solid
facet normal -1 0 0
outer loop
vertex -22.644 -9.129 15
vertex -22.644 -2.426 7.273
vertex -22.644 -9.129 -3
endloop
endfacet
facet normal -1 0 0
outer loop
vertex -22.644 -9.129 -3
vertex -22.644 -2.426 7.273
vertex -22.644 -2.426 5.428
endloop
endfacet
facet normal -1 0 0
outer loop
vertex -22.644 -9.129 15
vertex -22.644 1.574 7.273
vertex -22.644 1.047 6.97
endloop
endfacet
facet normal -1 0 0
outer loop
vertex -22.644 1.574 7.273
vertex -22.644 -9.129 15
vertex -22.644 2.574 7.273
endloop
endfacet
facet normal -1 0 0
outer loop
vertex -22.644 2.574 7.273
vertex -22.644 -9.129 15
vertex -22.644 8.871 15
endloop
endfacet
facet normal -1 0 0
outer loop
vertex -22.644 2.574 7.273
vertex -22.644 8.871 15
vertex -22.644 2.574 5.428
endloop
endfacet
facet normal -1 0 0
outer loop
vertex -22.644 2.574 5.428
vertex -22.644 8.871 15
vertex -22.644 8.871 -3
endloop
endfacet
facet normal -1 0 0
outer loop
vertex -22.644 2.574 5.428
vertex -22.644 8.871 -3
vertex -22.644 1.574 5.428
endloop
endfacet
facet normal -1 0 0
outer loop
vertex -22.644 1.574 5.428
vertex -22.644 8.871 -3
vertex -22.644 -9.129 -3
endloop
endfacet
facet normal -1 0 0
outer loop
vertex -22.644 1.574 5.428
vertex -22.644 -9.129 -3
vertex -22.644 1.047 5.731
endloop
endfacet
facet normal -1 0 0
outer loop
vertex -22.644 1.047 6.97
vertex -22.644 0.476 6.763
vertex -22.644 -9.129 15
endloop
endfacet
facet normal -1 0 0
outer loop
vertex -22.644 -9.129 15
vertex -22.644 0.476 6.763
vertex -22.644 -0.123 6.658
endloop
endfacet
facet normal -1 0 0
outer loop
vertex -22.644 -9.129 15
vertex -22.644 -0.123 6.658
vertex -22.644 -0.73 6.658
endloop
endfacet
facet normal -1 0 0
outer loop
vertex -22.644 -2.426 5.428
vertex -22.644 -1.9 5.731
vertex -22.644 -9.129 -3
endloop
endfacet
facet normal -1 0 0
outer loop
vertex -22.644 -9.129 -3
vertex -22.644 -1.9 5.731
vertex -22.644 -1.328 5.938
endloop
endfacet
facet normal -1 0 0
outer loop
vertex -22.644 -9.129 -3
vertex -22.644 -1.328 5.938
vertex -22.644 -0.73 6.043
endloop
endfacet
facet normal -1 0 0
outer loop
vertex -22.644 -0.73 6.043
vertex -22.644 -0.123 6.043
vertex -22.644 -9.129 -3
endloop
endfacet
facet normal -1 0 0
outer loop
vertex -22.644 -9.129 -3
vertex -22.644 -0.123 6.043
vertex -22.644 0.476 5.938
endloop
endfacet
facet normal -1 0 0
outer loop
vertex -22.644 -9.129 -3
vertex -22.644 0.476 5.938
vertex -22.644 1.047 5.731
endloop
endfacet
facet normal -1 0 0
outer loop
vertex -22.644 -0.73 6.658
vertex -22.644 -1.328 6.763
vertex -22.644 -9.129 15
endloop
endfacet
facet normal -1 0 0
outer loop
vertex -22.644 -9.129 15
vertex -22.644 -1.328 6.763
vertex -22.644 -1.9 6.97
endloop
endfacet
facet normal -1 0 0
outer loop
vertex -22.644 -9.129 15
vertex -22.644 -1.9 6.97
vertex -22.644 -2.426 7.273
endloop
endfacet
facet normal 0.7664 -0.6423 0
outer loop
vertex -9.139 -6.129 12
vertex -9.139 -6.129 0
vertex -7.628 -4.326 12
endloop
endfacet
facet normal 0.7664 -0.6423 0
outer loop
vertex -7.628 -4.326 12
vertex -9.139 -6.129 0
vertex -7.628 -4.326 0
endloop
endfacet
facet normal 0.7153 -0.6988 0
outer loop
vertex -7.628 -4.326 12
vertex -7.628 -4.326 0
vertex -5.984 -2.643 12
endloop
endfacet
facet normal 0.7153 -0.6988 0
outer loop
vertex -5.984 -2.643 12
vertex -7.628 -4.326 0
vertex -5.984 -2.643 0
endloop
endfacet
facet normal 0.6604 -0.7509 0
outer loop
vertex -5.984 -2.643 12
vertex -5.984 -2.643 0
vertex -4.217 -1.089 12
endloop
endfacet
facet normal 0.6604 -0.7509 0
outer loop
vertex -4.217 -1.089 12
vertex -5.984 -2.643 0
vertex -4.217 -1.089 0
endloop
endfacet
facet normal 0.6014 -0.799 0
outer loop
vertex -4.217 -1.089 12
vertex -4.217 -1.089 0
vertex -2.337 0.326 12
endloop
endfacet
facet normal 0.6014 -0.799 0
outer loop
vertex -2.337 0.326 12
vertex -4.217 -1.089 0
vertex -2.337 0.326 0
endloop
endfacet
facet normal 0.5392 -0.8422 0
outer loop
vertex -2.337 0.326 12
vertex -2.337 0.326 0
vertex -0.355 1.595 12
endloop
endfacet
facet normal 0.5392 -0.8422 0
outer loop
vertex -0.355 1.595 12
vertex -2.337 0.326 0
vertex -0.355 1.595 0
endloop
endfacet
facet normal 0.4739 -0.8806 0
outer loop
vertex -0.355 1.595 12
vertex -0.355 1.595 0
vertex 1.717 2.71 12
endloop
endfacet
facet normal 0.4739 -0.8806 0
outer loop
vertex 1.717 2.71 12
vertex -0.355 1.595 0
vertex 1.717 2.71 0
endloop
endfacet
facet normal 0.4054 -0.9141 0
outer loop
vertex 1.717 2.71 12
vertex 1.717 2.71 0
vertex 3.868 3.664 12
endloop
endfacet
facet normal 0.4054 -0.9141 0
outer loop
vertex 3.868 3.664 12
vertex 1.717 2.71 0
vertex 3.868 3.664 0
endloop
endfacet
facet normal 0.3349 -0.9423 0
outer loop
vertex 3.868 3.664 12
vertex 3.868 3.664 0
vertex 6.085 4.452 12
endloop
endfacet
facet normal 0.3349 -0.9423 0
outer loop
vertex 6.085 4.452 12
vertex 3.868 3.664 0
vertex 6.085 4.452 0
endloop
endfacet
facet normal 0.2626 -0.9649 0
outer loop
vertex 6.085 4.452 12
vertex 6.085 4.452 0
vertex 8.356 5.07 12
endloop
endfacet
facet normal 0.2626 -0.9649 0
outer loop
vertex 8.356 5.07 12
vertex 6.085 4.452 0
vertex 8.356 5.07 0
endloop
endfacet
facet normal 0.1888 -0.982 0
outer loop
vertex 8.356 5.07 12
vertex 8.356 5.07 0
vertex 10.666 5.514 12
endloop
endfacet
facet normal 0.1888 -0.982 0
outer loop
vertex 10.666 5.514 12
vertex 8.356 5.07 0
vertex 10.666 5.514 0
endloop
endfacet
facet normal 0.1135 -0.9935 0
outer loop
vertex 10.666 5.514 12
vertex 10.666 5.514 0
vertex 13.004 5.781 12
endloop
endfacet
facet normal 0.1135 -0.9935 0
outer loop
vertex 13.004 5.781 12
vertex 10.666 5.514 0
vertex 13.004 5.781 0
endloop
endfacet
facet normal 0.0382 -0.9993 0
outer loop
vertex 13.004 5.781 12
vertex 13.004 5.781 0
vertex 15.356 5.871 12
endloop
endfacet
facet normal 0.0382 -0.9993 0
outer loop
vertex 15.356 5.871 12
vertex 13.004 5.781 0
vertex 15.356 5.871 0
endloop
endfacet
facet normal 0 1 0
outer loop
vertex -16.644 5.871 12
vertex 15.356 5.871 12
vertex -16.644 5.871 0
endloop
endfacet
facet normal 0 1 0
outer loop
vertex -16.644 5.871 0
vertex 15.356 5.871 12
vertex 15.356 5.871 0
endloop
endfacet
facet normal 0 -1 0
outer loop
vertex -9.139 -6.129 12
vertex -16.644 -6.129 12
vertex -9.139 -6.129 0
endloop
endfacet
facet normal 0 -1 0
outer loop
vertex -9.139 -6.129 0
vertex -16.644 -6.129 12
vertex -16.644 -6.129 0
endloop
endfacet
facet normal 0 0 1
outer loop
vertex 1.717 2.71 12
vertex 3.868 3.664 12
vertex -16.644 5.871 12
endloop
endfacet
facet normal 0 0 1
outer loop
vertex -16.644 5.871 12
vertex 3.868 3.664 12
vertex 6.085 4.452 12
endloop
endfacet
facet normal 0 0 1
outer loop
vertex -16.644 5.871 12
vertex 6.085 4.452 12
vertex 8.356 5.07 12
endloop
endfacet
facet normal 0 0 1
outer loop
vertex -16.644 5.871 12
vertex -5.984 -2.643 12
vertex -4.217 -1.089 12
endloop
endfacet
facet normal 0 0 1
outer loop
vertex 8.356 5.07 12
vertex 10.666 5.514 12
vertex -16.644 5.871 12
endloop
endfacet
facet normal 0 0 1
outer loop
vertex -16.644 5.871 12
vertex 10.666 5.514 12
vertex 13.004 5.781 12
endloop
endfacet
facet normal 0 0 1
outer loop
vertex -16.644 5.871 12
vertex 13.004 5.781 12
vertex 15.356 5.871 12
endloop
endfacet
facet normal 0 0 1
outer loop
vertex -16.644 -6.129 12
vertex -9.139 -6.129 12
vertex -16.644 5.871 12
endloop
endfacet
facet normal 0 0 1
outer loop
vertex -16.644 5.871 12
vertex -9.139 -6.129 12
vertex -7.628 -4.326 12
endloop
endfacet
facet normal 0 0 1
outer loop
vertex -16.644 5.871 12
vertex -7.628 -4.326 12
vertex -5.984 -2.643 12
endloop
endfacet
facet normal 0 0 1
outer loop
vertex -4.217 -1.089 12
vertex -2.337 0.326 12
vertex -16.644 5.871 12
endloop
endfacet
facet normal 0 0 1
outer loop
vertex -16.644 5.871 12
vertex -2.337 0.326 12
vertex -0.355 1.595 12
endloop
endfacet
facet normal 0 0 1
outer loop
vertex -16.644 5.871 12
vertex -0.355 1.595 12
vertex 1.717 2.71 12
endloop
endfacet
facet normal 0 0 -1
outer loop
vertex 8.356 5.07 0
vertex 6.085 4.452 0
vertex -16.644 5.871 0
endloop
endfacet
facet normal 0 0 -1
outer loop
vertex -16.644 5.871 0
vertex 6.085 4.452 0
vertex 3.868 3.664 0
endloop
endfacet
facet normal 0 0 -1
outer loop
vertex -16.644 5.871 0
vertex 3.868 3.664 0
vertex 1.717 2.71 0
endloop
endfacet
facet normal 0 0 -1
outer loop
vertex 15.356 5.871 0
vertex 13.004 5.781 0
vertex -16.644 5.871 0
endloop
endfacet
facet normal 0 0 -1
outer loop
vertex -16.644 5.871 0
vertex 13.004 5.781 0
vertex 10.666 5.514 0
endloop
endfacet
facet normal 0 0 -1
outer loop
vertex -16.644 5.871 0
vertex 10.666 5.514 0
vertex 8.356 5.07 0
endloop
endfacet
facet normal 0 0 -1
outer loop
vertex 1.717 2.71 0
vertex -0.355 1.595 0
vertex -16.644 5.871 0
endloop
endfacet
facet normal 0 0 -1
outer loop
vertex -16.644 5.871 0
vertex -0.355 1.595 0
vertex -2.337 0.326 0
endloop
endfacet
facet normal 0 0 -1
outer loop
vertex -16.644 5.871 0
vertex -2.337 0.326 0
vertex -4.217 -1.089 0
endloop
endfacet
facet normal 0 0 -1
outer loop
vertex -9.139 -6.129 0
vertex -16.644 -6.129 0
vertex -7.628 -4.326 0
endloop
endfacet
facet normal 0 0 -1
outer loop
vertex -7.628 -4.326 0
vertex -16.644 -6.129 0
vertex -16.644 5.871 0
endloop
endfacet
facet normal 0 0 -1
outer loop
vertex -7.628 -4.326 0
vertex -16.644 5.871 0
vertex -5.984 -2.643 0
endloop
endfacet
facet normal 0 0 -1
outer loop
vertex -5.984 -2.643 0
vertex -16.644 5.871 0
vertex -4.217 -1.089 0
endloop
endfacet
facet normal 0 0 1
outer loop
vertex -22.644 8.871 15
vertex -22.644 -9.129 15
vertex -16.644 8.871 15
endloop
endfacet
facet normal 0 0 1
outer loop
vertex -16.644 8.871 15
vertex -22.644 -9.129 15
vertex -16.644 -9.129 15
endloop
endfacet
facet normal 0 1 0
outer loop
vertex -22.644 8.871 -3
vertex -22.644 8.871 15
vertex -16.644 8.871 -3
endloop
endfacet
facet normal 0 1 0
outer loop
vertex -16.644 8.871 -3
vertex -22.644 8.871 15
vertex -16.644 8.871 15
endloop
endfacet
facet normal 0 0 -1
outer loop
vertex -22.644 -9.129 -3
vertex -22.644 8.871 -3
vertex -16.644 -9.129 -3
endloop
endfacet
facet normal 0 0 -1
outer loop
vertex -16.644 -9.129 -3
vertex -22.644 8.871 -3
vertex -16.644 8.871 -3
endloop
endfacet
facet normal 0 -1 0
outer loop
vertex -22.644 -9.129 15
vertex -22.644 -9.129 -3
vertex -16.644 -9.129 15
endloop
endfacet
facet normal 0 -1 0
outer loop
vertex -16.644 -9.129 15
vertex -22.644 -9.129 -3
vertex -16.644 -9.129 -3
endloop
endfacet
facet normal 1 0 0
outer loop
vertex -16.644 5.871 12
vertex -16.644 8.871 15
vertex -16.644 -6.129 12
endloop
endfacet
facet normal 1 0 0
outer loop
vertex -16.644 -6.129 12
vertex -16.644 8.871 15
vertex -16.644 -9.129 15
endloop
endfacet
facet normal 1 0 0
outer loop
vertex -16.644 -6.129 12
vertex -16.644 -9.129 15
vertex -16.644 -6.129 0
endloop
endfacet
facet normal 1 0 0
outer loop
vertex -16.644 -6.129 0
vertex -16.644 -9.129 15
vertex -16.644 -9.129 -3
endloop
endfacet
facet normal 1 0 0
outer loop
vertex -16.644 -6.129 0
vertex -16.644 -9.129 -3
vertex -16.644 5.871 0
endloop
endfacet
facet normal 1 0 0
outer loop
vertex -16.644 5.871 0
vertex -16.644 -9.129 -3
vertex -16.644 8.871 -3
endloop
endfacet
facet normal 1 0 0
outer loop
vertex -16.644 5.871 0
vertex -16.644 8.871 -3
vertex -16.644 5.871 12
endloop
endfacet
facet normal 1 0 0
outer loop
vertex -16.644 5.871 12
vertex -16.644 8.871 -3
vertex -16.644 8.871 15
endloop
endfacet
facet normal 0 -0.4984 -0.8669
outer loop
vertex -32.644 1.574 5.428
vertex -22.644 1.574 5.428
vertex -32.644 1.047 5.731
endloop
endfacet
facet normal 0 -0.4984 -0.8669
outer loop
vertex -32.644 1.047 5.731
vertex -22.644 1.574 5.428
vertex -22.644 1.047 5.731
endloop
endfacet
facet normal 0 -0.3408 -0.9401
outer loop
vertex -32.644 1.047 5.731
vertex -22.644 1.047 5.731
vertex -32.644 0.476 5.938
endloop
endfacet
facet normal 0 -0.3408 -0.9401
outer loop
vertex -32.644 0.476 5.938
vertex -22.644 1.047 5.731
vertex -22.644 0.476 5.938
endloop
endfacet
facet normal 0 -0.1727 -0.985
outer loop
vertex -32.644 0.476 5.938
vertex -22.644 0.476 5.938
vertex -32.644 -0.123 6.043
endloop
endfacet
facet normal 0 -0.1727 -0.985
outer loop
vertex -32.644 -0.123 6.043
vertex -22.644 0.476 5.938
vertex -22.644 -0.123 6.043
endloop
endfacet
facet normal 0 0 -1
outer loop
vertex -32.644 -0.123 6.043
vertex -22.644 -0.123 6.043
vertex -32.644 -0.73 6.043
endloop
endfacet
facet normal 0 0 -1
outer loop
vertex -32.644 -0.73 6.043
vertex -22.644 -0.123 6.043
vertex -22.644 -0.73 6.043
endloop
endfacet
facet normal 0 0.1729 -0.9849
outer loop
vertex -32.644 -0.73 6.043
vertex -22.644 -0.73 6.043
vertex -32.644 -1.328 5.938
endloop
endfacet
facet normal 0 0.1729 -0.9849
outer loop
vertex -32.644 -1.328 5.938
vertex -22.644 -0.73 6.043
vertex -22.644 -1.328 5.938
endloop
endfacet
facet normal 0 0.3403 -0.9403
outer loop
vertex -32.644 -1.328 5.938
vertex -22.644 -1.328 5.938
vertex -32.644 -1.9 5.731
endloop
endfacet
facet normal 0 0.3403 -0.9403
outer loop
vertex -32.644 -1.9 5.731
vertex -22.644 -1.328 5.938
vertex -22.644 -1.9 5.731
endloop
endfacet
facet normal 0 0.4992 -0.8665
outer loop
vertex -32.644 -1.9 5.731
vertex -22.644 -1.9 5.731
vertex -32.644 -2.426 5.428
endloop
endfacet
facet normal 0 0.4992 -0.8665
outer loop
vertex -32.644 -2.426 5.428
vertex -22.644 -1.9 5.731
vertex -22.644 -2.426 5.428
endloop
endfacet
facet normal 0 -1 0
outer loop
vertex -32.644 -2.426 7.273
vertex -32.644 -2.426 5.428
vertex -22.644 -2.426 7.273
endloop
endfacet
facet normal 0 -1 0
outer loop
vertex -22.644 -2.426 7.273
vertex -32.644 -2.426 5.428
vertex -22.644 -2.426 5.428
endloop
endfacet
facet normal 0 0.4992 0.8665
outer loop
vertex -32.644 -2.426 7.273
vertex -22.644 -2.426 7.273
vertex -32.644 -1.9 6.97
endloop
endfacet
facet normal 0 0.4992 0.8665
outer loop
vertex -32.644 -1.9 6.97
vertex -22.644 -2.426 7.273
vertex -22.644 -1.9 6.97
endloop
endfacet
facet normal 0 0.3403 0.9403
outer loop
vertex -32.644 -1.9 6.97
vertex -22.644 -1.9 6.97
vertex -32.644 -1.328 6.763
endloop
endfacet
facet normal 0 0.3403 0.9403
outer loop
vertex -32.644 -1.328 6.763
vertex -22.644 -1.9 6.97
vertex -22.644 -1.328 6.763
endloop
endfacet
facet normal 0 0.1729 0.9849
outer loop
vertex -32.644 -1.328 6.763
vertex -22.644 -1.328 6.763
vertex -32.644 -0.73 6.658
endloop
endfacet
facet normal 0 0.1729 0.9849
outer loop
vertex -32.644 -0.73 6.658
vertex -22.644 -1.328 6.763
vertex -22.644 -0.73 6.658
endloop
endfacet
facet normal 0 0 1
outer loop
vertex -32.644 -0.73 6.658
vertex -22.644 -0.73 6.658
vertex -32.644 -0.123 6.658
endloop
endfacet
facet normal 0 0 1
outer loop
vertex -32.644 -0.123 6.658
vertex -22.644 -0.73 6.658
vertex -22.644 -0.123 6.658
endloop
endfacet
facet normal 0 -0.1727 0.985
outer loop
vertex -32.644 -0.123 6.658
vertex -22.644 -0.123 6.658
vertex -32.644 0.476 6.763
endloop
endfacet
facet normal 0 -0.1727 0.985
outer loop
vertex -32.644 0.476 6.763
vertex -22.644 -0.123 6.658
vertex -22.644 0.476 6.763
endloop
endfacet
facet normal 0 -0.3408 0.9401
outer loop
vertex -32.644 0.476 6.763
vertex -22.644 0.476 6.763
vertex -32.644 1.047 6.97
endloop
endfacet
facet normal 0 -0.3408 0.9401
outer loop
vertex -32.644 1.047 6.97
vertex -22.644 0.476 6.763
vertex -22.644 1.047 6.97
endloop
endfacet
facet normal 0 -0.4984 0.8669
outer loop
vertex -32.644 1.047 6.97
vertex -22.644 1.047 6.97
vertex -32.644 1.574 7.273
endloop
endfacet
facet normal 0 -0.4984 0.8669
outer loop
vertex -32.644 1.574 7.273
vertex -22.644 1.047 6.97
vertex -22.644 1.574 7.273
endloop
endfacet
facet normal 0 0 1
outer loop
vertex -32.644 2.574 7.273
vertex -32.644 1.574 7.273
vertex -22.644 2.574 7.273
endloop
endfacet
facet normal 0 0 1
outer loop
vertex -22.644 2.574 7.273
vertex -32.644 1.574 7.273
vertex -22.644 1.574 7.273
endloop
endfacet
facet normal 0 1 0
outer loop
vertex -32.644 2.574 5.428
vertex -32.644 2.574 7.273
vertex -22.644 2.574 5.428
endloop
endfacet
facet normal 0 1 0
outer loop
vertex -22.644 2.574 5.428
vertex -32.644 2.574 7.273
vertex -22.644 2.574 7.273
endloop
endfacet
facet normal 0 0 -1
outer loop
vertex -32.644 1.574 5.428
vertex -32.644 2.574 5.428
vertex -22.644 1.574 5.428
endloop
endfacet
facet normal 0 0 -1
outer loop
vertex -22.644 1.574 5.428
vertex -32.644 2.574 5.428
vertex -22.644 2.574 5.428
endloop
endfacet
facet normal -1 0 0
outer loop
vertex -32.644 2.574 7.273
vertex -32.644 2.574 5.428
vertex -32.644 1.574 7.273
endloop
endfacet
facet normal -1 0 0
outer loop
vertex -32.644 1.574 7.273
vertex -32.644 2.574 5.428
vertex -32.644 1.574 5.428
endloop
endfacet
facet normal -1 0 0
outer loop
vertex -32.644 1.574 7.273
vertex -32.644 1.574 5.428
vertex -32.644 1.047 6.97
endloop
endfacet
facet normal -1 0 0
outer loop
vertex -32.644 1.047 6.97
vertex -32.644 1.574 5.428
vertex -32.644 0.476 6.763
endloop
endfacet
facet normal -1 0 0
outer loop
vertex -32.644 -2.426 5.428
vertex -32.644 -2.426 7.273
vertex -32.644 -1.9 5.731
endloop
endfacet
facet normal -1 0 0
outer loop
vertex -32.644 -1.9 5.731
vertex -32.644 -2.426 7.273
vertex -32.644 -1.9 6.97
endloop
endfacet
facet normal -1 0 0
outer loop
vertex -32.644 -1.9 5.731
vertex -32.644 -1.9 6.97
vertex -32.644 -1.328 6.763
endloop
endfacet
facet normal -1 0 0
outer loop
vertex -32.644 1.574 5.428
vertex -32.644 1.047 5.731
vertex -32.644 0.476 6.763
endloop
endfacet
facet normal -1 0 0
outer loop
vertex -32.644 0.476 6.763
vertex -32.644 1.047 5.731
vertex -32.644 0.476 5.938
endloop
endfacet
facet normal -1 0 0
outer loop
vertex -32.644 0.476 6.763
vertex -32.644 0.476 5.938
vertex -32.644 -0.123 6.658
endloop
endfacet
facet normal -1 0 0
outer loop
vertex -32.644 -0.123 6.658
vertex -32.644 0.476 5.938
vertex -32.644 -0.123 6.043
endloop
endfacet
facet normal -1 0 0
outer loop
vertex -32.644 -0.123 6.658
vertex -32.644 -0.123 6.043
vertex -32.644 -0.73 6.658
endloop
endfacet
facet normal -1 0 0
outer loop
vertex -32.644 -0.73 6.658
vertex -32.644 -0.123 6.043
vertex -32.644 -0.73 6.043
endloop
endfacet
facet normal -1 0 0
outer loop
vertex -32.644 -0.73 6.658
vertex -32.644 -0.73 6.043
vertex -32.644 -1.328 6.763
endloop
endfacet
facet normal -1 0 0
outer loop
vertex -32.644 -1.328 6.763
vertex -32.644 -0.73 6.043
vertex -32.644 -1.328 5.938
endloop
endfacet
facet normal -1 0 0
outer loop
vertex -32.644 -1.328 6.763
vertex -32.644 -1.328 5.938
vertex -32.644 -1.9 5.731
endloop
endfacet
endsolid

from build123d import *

# Parameters (mm, degrees)
EXTRUDE_1_DEPTH = 12
SKETCH_2_W      = 18
SKETCH_2_H      = 18
EXTRUDE_2_DEPTH = 6
EXTRUDE_3_DEPTH = 10


with BuildPart() as part:
    # 스케치1 → 보스-돌출1 (new body)
    with BuildSketch(Plane.XY):
        with BuildLine():
            Line((15.355510937, 5.870718563), (-16.644489063, 5.870718563))
            Line((-16.644489063, 5.870718563), (-16.644489063, -6.129281437))
            Line((-16.644489063, -6.129281437), (-9.139386491, -6.129281437))
            ThreePointArc((-9.139386491, -6.129281437), (1.71732924, 2.709540377), (15.355510937, 5.870718563))
        make_face()
    extrude(amount=EXTRUDE_1_DEPTH)

    # 스케치2 → 보스-돌출2 (add)
    with BuildSketch(Plane.ZY.offset(16.644489063)):
        with Locations((6, -0.129281437)):
            Rectangle(SKETCH_2_W, SKETCH_2_H)
    extrude(amount=EXTRUDE_2_DEPTH)

    # 스케치3 → 보스-돌출3 (add)
    with BuildSketch(Plane.ZY.offset(22.644489063)):
        with BuildLine():
            Line((5.428283523, 1.573651364), (5.428283523, 2.573651364))
            Line((5.428283523, 2.573651364), (7.272757062, 2.573651364))
            Line((7.272757062, 2.573651364), (7.272757062, 1.573651364))
            ThreePointArc((7.272757062, 1.573651364), (6.645038385, -0.426348636), (7.272757062, -2.426348636))
            Line((7.272757062, -2.426348636), (5.428283523, -2.426348636))
            ThreePointArc((5.428283523, -2.426348636), (6.0560022, -0.426348636), (5.428283523, 1.573651364))
        make_face()
    extrude(amount=EXTRUDE_3_DEPTH)


solid = part.part
